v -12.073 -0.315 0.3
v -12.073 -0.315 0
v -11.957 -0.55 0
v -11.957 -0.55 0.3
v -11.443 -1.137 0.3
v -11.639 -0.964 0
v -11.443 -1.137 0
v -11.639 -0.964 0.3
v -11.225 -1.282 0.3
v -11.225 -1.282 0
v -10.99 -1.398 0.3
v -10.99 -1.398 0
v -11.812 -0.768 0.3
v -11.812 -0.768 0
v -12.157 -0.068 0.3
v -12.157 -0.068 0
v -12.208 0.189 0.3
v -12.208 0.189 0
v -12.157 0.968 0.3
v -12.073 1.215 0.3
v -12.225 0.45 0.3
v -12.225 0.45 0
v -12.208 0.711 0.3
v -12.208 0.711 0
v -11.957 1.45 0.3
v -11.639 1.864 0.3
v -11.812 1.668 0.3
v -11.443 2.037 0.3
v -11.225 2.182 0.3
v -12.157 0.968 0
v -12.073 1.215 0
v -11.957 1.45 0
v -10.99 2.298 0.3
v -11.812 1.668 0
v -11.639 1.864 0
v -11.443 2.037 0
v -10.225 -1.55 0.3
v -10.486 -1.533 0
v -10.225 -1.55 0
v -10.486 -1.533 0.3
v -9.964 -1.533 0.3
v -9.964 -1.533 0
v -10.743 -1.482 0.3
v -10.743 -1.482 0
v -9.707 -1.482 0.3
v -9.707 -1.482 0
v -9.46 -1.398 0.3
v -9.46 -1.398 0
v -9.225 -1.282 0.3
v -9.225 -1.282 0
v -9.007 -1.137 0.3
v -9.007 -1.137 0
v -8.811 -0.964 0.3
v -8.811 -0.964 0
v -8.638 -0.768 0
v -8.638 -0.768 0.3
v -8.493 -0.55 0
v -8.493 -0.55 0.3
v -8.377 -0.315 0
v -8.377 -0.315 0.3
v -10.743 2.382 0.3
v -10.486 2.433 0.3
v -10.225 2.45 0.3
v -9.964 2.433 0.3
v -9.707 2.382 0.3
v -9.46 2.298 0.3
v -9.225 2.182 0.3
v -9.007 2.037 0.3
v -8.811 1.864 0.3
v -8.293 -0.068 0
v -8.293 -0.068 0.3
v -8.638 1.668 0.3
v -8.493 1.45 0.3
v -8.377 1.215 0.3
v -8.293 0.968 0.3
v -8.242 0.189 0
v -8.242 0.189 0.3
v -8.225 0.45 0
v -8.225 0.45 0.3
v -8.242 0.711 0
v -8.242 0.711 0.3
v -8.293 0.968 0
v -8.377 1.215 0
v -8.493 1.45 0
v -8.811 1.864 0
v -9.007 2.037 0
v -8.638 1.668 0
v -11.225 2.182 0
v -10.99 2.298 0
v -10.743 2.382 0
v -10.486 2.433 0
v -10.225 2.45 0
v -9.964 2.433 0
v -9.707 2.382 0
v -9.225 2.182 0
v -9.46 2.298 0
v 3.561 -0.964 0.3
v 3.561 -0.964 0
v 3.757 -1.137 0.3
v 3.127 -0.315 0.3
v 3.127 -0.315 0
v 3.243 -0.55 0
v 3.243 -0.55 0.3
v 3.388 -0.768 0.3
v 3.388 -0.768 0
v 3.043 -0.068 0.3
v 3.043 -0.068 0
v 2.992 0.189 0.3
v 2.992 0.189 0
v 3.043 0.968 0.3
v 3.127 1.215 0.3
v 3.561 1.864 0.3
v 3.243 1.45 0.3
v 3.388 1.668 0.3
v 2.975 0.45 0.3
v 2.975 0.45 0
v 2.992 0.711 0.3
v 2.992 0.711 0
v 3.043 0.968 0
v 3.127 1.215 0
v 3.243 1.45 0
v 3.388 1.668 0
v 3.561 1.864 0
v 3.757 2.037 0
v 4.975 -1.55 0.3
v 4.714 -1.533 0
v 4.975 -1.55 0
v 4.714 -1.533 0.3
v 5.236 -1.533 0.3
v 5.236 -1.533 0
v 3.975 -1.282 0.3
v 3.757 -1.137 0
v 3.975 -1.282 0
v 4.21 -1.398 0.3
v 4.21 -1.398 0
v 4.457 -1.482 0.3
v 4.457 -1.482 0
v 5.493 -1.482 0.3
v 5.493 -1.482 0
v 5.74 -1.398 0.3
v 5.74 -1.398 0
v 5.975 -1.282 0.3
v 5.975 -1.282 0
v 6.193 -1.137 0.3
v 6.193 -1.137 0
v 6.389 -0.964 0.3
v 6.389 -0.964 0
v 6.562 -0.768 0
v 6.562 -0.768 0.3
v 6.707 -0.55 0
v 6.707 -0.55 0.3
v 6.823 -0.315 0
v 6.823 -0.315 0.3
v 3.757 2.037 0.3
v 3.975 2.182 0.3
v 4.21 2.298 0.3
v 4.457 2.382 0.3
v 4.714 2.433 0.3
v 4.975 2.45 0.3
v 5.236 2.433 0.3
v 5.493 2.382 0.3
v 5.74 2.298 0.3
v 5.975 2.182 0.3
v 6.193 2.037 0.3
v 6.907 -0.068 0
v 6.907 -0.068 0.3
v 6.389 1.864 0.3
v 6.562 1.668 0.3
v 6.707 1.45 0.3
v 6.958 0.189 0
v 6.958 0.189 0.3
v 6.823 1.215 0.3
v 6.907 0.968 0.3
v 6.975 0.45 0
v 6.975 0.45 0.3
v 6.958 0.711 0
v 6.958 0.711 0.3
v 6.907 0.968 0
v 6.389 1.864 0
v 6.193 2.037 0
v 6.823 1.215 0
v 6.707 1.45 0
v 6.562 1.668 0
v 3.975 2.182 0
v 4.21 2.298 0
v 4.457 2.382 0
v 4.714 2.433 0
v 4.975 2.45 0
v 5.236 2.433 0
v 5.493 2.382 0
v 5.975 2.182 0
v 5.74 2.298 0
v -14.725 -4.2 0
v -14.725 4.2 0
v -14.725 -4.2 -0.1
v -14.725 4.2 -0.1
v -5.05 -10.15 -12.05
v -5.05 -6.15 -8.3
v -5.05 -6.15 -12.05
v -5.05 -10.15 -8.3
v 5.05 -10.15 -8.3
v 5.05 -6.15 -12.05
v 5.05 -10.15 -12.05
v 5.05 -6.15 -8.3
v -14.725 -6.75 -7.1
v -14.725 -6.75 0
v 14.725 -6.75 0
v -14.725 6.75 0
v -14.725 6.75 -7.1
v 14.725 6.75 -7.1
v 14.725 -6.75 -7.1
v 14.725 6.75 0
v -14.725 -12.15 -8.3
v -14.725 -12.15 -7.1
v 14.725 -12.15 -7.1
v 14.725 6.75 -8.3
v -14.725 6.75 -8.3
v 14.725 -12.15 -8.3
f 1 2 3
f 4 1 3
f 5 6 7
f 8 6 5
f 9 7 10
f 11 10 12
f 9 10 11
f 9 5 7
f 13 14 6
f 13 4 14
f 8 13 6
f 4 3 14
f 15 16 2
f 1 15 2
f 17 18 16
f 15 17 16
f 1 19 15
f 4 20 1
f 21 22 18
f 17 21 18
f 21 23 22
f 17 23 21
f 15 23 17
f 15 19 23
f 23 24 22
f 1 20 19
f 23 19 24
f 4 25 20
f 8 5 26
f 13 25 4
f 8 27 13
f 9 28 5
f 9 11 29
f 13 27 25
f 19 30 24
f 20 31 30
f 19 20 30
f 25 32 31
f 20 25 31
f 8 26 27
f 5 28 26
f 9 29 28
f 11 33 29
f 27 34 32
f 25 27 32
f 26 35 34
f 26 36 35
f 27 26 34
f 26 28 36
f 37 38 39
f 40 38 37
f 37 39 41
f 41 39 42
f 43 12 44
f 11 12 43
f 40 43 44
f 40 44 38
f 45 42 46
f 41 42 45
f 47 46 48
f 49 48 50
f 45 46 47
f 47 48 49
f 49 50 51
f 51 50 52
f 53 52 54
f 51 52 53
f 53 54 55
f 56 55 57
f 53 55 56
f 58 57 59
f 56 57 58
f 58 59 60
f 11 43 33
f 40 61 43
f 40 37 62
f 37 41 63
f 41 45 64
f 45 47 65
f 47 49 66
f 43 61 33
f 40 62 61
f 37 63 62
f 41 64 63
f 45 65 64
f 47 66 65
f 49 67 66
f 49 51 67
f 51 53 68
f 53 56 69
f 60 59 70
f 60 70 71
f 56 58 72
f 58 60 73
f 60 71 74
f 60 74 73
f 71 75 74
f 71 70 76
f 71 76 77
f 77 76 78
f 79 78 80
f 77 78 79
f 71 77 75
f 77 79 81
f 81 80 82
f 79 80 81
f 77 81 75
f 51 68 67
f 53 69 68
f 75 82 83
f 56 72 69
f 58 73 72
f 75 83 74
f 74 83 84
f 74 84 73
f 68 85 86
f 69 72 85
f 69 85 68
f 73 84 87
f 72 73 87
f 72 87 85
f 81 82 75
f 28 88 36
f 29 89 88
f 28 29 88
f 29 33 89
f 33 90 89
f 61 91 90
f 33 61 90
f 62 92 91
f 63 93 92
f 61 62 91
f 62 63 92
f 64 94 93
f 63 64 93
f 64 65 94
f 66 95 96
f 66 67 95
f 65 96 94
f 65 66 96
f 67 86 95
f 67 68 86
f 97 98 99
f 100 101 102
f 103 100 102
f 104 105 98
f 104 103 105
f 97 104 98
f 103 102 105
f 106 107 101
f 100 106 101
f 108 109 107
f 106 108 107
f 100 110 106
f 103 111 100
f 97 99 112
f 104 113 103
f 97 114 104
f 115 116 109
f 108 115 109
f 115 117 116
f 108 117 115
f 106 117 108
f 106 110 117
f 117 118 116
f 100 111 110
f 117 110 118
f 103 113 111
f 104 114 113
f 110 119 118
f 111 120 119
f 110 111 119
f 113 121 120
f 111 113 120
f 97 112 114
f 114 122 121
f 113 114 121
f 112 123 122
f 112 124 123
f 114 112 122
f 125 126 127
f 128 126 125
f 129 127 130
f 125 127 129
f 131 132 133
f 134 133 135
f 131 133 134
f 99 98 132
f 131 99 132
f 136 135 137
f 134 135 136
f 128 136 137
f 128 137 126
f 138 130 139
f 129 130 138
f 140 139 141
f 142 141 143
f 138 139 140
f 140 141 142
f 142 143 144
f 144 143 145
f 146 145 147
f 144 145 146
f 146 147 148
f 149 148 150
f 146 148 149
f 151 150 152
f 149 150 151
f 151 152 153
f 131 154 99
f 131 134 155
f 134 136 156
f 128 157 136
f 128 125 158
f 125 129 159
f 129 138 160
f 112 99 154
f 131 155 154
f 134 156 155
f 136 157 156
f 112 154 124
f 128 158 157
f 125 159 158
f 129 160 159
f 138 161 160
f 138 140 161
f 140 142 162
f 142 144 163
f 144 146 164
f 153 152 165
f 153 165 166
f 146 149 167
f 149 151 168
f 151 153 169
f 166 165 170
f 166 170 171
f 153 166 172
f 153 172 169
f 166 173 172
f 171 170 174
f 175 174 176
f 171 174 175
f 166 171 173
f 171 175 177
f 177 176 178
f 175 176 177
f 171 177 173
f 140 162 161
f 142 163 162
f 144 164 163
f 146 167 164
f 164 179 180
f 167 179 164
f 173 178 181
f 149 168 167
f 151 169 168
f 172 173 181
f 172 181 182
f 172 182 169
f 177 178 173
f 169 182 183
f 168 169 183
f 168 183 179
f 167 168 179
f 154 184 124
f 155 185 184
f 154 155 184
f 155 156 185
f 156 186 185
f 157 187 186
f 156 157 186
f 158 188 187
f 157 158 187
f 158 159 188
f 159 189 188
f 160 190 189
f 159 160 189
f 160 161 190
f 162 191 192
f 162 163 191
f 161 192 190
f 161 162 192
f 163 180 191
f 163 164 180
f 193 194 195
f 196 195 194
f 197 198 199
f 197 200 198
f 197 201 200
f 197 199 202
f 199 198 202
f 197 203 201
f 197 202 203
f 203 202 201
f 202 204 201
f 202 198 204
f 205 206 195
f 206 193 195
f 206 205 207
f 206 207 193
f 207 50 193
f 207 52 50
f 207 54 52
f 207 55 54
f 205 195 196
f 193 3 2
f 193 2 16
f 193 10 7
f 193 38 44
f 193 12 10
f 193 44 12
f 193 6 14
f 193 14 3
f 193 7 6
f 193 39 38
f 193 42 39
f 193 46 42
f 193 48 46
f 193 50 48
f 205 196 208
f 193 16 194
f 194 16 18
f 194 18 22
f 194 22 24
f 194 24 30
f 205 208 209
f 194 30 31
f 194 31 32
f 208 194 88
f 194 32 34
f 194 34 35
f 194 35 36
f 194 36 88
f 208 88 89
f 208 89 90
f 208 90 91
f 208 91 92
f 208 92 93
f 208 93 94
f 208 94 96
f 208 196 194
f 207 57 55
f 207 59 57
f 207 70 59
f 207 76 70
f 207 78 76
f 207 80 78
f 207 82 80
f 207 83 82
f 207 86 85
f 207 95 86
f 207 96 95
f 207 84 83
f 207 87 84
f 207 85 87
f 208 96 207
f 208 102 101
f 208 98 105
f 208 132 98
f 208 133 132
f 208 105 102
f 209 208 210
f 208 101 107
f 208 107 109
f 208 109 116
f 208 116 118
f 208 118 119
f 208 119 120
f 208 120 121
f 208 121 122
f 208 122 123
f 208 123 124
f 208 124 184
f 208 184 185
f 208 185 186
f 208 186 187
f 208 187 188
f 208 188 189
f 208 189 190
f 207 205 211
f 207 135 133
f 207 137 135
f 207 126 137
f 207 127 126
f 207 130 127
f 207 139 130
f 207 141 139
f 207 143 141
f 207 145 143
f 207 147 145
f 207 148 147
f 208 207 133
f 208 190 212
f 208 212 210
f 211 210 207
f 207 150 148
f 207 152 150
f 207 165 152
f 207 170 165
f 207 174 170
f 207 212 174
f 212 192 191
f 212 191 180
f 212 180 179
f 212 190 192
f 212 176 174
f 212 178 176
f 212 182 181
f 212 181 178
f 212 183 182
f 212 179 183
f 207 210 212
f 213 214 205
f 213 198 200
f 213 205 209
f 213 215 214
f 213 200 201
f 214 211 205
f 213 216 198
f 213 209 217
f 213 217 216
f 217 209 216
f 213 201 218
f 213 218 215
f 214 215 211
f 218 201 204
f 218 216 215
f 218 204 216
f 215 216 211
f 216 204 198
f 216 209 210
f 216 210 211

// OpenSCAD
// =========================================================
// Sharp GP2Y0D413K0F Distance Sensor
// 単位: mm
// 座標系: 本体中心を原点、取付面(PWB/コネクタ側)を -Z に向ける
// =========================================================

$fn = 48;

// ---- 主要寸法 ----
body_w      = 29.45;   // 本体 横幅 (X)
body_h      = 13.5;    // 本体 高さ (Y)
body_d      = 7.1;     // ケース本体 奥行き (Z) レンズ面まで
lens_case_d = 6.3;     // レンズ突起の奥行き(参考)
face_h      = 8.4;     // フロント面部の高さ

// レンズ関連
lens_dia    = 4.0;     // レンズ開口径(推定)
lens_center_h = 7.2;   // レンズ中心の高さ位置(下面基準)
emitter_x   = 4.5;     // 左端からエミッタ中心
detector_x  = 19.7;    // 左端からディテクタ中心

// PWB
pwb_w   = 29.45;
pwb_h   = 18.9;        // PWB全高(参考)
pwb_t   = 1.2;         // PWB厚

// コネクタ
conn_w   = 10.1;       // コネクタ幅
conn_h   = 4.0;        // コネクタ高さ(推定)
conn_d   = 3.75;       // コネクタ突出(推定)

// =========================================================
// 本体ケース (Carbonic ABS)
// =========================================================
module body_case() {
    color([0.15,0.15,0.15]) {
        // メイン直方体 (-Z面が取付側)
        translate([0,0,-body_d])
            cube([body_w, body_h, body_d], center=false);
    }
}

// =========================================================
// フロント面 (レンズ面) + レンズ2個
// =========================================================
module lens_face() {
    // レンズ面(前面 = +Z)
    color([0.1,0.1,0.1])
        translate([0, (body_h-face_h)/2, -0.1])
            cube([body_w, face_h, 0.1]);

    // レンズ(エミッタ・ディテクタ)
    color([0.05,0.05,0.05]) {
        // エミッタ
        translate([emitter_x, lens_center_h, 0])
            cylinder(h=0.3, d=lens_dia, center=false);
        // ディテクタ
        translate([detector_x, lens_center_h, 0])
            cylinder(h=0.3, d=lens_dia, center=false);
    }
}

// =========================================================
// PWB (Paper phenol) — 本体の -Z 側背面に接する
// =========================================================
module pwb() {
    color([0.55,0.42,0.15]) {
        // 本体底面(-Z)に貼り付く基板
        // PWB は本体より下(-Y)方向へ延びる
        translate([0, -(pwb_h - body_h), -(body_d + pwb_t)])
            cube([pwb_w, pwb_h, pwb_t], center=false);
    }
}

// =========================================================
// コネクタ (JCTC 12001W90-3P-HF) — PWB下部 -Z 側
// =========================================================
module connector() {
    color([1.0,1.0,1.0]) {
        // コネクタ本体
        translate([(body_w-conn_w)/2,
                   -(pwb_h - body_h) + 2,
                   -(body_d + pwb_t + conn_d)])
            cube([conn_w, conn_h, conn_d], center=false);
    }
    // 端子ピン ①②③
    color([0.8,0.7,0.2]) {
        for(i=[0:2]) {
            translate([(body_w-conn_w)/2 + 2.5 + i*2.5,
                       -(pwb_h - body_h) + 4,
                       -(body_d + pwb_t + conn_d)])
                cube([0.6, 0.6, conn_d]);
        }
    }
}

// =========================================================
// 組み立て (原点=本体中心へ移動)
// =========================================================
module GP2Y0D413K0F() {
    // 本体中心が原点に来るように X,Y をオフセット
    translate([-body_w/2, -body_h/2, 0]) {
        body_case();
        lens_face();
        pwb();
        connector();
    }
}

GP2Y0D413K0F();
